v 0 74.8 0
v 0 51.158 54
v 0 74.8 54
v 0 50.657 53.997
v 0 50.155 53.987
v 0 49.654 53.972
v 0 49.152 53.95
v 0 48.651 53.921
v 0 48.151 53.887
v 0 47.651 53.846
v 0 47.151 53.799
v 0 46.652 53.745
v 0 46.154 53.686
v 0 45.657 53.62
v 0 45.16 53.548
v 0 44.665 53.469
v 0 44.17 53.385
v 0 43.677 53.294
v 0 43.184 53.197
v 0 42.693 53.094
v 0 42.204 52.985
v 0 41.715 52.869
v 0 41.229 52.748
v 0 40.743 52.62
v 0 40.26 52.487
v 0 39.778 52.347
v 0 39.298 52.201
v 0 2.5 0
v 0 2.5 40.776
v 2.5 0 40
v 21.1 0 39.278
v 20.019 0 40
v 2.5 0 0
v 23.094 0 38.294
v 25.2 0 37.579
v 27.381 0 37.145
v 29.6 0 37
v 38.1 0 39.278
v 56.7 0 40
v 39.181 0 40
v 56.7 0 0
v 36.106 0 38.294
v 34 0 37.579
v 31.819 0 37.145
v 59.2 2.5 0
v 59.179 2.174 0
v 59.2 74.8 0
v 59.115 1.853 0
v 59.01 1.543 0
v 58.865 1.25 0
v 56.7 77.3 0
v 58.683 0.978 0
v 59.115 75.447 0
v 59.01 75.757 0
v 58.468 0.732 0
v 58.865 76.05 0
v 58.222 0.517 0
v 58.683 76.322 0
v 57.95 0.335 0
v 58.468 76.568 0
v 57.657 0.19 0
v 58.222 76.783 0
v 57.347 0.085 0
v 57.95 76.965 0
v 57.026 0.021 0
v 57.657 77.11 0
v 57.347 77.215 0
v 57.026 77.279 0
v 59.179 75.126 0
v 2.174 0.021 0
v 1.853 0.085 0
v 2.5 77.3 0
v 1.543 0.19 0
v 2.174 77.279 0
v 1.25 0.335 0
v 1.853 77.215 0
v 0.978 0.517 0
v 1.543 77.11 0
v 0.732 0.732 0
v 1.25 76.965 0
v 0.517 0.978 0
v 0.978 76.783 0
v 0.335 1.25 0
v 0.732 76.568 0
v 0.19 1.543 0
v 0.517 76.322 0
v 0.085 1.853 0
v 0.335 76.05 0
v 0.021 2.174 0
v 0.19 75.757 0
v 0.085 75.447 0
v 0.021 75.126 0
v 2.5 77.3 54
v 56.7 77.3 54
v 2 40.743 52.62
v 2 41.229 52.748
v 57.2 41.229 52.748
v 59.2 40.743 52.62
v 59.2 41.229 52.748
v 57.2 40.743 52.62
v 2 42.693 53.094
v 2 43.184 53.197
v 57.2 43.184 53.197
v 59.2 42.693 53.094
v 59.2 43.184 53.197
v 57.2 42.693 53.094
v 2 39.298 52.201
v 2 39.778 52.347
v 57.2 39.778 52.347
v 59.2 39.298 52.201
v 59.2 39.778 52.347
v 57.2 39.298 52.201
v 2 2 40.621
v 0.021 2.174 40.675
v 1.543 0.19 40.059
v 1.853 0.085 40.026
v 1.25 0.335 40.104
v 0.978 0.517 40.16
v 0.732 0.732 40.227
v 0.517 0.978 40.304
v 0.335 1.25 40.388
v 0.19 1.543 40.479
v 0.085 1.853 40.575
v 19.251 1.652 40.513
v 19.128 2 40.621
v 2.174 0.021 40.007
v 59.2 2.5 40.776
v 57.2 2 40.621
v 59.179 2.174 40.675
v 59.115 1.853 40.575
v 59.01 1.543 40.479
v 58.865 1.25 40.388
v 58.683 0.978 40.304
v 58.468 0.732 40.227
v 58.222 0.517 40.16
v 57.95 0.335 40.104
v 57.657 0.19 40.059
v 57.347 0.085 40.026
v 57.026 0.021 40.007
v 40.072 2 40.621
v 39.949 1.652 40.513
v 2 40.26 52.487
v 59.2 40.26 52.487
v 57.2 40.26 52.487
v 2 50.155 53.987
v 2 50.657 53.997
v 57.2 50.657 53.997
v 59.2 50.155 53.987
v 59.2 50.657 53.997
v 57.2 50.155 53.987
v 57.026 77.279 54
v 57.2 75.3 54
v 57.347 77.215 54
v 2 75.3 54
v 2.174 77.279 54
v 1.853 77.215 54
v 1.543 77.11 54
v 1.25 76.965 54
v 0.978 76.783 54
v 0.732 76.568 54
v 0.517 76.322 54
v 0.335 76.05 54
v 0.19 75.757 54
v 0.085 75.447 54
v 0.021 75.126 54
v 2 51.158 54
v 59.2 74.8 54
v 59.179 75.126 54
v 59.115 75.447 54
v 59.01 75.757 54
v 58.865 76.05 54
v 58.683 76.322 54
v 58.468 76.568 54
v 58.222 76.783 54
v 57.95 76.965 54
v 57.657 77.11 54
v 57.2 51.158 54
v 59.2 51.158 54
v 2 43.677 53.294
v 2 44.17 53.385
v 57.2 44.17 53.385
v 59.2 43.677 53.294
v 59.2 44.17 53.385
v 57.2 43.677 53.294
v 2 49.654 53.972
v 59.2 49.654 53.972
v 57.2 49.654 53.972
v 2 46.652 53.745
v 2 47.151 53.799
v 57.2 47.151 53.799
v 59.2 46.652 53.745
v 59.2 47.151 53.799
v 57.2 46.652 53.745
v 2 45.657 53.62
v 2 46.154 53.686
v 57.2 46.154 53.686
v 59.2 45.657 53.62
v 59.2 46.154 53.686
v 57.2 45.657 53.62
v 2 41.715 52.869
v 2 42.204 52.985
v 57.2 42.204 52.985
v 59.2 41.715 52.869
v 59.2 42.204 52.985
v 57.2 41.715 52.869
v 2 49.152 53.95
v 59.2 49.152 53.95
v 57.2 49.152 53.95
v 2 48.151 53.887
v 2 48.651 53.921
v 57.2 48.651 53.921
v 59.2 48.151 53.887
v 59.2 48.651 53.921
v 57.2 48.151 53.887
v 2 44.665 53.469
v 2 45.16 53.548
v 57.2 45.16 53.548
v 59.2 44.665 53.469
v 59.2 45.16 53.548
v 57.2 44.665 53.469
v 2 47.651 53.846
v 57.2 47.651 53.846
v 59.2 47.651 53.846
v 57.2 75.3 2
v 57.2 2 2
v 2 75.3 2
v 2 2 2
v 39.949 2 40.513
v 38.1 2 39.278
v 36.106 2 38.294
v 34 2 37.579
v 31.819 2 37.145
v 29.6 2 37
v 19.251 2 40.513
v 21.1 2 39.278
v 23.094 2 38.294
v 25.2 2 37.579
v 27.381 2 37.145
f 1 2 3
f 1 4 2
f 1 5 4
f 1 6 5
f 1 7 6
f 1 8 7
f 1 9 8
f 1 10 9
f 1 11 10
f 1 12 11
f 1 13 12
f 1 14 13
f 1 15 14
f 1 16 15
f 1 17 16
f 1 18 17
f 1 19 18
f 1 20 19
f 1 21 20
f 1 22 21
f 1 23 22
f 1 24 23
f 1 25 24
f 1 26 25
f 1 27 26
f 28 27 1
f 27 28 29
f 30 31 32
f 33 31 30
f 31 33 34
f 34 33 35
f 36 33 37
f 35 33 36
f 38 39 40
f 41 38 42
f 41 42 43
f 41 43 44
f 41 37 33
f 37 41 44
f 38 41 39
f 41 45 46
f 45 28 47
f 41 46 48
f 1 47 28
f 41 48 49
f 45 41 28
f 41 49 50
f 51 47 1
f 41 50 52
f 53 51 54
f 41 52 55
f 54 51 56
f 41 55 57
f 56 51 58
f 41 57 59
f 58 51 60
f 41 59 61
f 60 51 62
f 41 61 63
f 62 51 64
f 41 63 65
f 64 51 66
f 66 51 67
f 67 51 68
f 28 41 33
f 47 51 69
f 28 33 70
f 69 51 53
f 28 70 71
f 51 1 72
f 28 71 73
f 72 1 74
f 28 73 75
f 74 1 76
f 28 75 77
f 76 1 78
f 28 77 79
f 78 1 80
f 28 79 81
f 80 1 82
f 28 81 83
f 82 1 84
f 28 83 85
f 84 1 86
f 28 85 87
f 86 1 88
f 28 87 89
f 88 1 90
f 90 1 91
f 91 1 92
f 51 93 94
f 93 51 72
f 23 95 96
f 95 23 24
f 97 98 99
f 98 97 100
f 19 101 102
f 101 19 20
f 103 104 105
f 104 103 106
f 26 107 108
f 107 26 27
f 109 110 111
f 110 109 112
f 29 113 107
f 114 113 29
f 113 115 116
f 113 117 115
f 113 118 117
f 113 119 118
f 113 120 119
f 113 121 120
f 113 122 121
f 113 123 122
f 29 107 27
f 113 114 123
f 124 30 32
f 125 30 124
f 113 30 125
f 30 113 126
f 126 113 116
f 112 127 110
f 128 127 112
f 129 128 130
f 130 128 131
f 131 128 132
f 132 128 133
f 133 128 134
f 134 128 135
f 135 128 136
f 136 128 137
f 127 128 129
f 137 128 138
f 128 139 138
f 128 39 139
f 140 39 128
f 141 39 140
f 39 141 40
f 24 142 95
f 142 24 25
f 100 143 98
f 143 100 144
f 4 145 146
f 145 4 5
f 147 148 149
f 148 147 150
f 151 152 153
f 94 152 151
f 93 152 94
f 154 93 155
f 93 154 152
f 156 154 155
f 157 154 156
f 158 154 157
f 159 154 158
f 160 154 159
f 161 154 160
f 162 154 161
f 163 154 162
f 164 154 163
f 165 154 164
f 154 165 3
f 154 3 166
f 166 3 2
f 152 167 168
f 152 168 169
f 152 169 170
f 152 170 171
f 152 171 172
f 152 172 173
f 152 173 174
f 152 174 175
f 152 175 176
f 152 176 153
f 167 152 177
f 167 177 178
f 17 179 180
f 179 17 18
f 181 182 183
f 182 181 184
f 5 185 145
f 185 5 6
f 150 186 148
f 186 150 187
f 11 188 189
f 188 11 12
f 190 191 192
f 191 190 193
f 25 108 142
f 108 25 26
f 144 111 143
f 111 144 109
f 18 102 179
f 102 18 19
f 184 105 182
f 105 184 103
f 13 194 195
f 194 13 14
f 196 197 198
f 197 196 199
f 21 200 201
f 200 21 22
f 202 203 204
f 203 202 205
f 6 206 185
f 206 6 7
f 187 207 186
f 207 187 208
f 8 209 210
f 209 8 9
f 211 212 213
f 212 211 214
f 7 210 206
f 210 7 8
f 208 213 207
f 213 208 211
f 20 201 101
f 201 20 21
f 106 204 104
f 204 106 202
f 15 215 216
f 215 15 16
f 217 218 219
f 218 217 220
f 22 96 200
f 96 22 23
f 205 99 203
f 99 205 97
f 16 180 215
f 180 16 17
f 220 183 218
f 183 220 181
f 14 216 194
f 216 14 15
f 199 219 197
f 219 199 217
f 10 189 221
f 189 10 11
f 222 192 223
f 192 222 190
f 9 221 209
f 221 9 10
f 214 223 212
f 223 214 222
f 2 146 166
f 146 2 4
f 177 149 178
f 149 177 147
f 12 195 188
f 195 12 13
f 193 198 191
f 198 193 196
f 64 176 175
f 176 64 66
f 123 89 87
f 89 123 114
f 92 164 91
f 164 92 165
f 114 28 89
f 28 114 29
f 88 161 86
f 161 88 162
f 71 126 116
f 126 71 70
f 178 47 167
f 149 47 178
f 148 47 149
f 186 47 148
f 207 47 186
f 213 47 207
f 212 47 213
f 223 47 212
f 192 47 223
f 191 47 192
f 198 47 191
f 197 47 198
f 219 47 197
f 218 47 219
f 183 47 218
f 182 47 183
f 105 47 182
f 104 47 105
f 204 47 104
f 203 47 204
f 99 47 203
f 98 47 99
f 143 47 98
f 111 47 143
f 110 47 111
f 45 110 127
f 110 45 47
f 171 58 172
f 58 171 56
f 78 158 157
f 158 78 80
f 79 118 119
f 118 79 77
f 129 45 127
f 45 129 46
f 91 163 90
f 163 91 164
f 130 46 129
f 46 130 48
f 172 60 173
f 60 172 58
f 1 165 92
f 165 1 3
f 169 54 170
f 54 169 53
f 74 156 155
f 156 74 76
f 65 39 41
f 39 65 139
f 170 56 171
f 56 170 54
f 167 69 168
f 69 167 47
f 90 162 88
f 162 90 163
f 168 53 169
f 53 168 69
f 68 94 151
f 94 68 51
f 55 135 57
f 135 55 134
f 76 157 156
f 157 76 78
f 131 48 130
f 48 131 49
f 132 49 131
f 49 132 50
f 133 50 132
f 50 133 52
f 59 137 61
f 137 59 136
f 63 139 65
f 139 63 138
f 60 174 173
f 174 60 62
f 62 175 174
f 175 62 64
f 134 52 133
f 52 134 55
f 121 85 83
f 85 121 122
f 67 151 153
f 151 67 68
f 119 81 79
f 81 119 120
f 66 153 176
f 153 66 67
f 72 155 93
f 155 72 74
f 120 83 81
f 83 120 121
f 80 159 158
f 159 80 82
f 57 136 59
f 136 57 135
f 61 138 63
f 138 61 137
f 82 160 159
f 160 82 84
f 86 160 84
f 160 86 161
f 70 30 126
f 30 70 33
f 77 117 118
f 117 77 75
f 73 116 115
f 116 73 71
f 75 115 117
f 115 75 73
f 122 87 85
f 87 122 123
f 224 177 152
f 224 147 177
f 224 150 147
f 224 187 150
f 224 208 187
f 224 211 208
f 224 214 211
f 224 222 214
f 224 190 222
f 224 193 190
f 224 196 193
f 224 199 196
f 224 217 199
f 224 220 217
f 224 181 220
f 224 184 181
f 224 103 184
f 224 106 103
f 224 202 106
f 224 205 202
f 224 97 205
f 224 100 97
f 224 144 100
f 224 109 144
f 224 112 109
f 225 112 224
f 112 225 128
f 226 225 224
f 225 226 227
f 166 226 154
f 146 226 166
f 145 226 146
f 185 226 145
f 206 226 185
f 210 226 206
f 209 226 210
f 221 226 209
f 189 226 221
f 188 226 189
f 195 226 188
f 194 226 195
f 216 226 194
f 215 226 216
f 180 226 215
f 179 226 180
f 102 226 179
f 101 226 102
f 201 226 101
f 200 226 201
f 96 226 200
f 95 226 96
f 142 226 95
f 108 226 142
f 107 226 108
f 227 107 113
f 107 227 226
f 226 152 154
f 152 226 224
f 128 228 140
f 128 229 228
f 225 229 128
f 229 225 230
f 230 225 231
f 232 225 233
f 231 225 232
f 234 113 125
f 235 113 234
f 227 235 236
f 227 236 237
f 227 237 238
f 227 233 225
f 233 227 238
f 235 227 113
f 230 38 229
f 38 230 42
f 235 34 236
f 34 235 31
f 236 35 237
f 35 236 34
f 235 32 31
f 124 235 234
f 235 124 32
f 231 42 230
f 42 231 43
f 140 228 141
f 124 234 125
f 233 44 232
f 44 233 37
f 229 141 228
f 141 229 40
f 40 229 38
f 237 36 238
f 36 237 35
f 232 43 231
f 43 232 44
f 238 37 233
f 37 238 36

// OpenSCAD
/*
  Card crate for NFC album cards (holds n_cards, standing upright like records).
  Open top, one piece, prints floor-down with no supports.
  Front wall is low so you see the artwork; back wall is tall to support the cards.
  Units: mm.   openscad -o card-box.stl nfc-card-box.scad

  show_logo: false = no logo on the front (only the text). Set true to engrave a logo.
  logo_svg: path to your OWN logo/artwork (SVG) to engrave instead of the
  built-in note + NFC-waves emblem. Leave "" to use the emblem. Only used when show_logo = true.
  text_str: set to "" for a completely plain front.
*/

n_cards  = 50;
card_t   = 0.9;      // card + label thickness (PVC card ~0.76-0.84 + label ~0.1)  (ASSUMED, measure a stack of 10)
slack    = 6;        // spare room so the stack is not jammed
card_w   = 54.0;
card_h   = 86.0;
clr      = 0.6;      // side clearance

wall     = 2.0;
floor_t  = 2.0;
r_out    = 2.5;
h_back   = 64;       // back wall height above the table (before the top cut, see cut_h)
h_front  = 40;       // front wall height
cut_h    = 54;       // flat cut: everything above this height is removed, like stopping the print here.
                     // The slope runs up from the front and levels off at this height. 0 = no cut
cut_round = 40;      // radius of the rounded transition between the slope and the flat top. 0 = sharp kink

show_logo  = false;
logo_svg   = "";
logo_depth = 0.8;
text_str   = "";         // "" = no text on the front. Put e.g. "ALBUMS" back to engrave it

in_w = card_w + 2*clr;
box_depth = 77.3;   // outer depth front-to-back. 77.3 = same length as the reader case, so both line up
                    // in the dock. 0 = size it from n_cards * card_t + slack instead.
in_d = box_depth > 0 ? box_depth - 2*wall : n_cards*card_t + slack;
out_w = in_w + 2*wall;
out_d = in_d + 2*wall;
$fn = 48;

module rrect2(w, d, r) {
  hull() for (x = [r, w - r], y = [r, d - r]) translate([x, y]) circle(r = r);
}

// side profile in the Y-Z plane (Y = depth, front at y=0): sloped top from front to back
module profile() {
  if (cut_h <= 0 || cut_h >= h_back) polygon([[0, 0], [out_d, 0], [out_d, h_back], [0, h_front]]);
  else {
    th = atan((h_back - h_front) / out_d);           // slope angle
    yk = (cut_h - h_front) / tan(th);                // where the slope reaches cut_h
    t  = cut_round * tan(th / 2);                    // tangent length of the rounding
    c  = [yk + t, cut_h - cut_round];                // centre of the rounding arc
    arc = cut_round > 0
      ? [for (a = [90 + th : -th / 24 : 90]) c + cut_round * [cos(a), sin(a)]]
      : [[yk, cut_h]];
    polygon(concat([[0, 0], [out_d, 0], [out_d, cut_h]], [for (i = [len(arc) - 1 : -1 : 0]) arc[i]], [[0, h_front]]));
  }
}

// 2D emblem in X-Z coordinates, centred at 0,0, about 30 mm square: note + radiating waves
module emblem() {
  // note head, stem and flag
  translate([-6, -8]) rotate(-20) scale([1.25, 0.9]) circle(r = 5);
  translate([-1.8, -8]) square([2.4, 17]);
  polygon([[0.6, 9], [0.6, 3.5], [10, -1], [10, 4.5]]);
  // waves
  for (r = [11, 16, 21])
    intersection() {
      translate([4, -1]) difference() { circle(r = r); circle(r = r - 1.8); }
      translate([4, -1]) polygon([[0, 0], [60, 40], [60, -40]]);
    }
}

module engraving() {
  // lies on the front face (y = 0), facing -Y
  if (show_logo)
    rotate([90, 0, 0]) translate([out_w/2, 23, 0]) linear_extrude(height = logo_depth * 2, center = true) {
      if (logo_svg == "") {
        scale(0.8) translate([-5.5, 0]) emblem();
      } else {
        resize([26, 26], auto = true) import(logo_svg, center = true);
      }
    }
  if (text_str != "")
    rotate([90, 0, 0]) translate([out_w/2, 6.5, 0]) linear_extrude(height = logo_depth * 2, center = true)
      text(text_str, size = 5, halign = "center", valign = "center", font = "Liberation Sans:style=Bold");
}

module box() {
  difference() {
    // outer shell: extruded side profile, rounded vertical corners via intersection
    intersection() {
      translate([0, out_d, 0]) rotate([90, 0, 0]) mirror([0, 0, 0])
        rotate([0, 0, 0]) translate([0, 0, 0]) linear_extrude(height = out_d) square([out_w, h_back]);
      // the profile, extruded along X
      translate([0, 0, 0]) rotate([90, 0, 90]) linear_extrude(height = out_w) profile();
      linear_extrude(height = h_back) rrect2(out_w, out_d, r_out);
    }
    // card cavity, open on top, cut to follow the same slope so the side walls keep their thickness
    translate([wall, wall, floor_t]) cube([in_w, in_d, h_back]);
    // thumb scoop in the front wall top so the first card is easy to grab
    translate([out_w/2, -1, h_front + 14]) rotate([-90, 0, 0]) cylinder(r = 17, h = wall + 2);
    engraving();
  }
}

box();
echo(str("outer: ", out_w, " x ", out_d, " x ", h_back, "  inner depth for cards: ", in_d, " (about ", floor(in_d / card_t), " cards packed tight)"));
